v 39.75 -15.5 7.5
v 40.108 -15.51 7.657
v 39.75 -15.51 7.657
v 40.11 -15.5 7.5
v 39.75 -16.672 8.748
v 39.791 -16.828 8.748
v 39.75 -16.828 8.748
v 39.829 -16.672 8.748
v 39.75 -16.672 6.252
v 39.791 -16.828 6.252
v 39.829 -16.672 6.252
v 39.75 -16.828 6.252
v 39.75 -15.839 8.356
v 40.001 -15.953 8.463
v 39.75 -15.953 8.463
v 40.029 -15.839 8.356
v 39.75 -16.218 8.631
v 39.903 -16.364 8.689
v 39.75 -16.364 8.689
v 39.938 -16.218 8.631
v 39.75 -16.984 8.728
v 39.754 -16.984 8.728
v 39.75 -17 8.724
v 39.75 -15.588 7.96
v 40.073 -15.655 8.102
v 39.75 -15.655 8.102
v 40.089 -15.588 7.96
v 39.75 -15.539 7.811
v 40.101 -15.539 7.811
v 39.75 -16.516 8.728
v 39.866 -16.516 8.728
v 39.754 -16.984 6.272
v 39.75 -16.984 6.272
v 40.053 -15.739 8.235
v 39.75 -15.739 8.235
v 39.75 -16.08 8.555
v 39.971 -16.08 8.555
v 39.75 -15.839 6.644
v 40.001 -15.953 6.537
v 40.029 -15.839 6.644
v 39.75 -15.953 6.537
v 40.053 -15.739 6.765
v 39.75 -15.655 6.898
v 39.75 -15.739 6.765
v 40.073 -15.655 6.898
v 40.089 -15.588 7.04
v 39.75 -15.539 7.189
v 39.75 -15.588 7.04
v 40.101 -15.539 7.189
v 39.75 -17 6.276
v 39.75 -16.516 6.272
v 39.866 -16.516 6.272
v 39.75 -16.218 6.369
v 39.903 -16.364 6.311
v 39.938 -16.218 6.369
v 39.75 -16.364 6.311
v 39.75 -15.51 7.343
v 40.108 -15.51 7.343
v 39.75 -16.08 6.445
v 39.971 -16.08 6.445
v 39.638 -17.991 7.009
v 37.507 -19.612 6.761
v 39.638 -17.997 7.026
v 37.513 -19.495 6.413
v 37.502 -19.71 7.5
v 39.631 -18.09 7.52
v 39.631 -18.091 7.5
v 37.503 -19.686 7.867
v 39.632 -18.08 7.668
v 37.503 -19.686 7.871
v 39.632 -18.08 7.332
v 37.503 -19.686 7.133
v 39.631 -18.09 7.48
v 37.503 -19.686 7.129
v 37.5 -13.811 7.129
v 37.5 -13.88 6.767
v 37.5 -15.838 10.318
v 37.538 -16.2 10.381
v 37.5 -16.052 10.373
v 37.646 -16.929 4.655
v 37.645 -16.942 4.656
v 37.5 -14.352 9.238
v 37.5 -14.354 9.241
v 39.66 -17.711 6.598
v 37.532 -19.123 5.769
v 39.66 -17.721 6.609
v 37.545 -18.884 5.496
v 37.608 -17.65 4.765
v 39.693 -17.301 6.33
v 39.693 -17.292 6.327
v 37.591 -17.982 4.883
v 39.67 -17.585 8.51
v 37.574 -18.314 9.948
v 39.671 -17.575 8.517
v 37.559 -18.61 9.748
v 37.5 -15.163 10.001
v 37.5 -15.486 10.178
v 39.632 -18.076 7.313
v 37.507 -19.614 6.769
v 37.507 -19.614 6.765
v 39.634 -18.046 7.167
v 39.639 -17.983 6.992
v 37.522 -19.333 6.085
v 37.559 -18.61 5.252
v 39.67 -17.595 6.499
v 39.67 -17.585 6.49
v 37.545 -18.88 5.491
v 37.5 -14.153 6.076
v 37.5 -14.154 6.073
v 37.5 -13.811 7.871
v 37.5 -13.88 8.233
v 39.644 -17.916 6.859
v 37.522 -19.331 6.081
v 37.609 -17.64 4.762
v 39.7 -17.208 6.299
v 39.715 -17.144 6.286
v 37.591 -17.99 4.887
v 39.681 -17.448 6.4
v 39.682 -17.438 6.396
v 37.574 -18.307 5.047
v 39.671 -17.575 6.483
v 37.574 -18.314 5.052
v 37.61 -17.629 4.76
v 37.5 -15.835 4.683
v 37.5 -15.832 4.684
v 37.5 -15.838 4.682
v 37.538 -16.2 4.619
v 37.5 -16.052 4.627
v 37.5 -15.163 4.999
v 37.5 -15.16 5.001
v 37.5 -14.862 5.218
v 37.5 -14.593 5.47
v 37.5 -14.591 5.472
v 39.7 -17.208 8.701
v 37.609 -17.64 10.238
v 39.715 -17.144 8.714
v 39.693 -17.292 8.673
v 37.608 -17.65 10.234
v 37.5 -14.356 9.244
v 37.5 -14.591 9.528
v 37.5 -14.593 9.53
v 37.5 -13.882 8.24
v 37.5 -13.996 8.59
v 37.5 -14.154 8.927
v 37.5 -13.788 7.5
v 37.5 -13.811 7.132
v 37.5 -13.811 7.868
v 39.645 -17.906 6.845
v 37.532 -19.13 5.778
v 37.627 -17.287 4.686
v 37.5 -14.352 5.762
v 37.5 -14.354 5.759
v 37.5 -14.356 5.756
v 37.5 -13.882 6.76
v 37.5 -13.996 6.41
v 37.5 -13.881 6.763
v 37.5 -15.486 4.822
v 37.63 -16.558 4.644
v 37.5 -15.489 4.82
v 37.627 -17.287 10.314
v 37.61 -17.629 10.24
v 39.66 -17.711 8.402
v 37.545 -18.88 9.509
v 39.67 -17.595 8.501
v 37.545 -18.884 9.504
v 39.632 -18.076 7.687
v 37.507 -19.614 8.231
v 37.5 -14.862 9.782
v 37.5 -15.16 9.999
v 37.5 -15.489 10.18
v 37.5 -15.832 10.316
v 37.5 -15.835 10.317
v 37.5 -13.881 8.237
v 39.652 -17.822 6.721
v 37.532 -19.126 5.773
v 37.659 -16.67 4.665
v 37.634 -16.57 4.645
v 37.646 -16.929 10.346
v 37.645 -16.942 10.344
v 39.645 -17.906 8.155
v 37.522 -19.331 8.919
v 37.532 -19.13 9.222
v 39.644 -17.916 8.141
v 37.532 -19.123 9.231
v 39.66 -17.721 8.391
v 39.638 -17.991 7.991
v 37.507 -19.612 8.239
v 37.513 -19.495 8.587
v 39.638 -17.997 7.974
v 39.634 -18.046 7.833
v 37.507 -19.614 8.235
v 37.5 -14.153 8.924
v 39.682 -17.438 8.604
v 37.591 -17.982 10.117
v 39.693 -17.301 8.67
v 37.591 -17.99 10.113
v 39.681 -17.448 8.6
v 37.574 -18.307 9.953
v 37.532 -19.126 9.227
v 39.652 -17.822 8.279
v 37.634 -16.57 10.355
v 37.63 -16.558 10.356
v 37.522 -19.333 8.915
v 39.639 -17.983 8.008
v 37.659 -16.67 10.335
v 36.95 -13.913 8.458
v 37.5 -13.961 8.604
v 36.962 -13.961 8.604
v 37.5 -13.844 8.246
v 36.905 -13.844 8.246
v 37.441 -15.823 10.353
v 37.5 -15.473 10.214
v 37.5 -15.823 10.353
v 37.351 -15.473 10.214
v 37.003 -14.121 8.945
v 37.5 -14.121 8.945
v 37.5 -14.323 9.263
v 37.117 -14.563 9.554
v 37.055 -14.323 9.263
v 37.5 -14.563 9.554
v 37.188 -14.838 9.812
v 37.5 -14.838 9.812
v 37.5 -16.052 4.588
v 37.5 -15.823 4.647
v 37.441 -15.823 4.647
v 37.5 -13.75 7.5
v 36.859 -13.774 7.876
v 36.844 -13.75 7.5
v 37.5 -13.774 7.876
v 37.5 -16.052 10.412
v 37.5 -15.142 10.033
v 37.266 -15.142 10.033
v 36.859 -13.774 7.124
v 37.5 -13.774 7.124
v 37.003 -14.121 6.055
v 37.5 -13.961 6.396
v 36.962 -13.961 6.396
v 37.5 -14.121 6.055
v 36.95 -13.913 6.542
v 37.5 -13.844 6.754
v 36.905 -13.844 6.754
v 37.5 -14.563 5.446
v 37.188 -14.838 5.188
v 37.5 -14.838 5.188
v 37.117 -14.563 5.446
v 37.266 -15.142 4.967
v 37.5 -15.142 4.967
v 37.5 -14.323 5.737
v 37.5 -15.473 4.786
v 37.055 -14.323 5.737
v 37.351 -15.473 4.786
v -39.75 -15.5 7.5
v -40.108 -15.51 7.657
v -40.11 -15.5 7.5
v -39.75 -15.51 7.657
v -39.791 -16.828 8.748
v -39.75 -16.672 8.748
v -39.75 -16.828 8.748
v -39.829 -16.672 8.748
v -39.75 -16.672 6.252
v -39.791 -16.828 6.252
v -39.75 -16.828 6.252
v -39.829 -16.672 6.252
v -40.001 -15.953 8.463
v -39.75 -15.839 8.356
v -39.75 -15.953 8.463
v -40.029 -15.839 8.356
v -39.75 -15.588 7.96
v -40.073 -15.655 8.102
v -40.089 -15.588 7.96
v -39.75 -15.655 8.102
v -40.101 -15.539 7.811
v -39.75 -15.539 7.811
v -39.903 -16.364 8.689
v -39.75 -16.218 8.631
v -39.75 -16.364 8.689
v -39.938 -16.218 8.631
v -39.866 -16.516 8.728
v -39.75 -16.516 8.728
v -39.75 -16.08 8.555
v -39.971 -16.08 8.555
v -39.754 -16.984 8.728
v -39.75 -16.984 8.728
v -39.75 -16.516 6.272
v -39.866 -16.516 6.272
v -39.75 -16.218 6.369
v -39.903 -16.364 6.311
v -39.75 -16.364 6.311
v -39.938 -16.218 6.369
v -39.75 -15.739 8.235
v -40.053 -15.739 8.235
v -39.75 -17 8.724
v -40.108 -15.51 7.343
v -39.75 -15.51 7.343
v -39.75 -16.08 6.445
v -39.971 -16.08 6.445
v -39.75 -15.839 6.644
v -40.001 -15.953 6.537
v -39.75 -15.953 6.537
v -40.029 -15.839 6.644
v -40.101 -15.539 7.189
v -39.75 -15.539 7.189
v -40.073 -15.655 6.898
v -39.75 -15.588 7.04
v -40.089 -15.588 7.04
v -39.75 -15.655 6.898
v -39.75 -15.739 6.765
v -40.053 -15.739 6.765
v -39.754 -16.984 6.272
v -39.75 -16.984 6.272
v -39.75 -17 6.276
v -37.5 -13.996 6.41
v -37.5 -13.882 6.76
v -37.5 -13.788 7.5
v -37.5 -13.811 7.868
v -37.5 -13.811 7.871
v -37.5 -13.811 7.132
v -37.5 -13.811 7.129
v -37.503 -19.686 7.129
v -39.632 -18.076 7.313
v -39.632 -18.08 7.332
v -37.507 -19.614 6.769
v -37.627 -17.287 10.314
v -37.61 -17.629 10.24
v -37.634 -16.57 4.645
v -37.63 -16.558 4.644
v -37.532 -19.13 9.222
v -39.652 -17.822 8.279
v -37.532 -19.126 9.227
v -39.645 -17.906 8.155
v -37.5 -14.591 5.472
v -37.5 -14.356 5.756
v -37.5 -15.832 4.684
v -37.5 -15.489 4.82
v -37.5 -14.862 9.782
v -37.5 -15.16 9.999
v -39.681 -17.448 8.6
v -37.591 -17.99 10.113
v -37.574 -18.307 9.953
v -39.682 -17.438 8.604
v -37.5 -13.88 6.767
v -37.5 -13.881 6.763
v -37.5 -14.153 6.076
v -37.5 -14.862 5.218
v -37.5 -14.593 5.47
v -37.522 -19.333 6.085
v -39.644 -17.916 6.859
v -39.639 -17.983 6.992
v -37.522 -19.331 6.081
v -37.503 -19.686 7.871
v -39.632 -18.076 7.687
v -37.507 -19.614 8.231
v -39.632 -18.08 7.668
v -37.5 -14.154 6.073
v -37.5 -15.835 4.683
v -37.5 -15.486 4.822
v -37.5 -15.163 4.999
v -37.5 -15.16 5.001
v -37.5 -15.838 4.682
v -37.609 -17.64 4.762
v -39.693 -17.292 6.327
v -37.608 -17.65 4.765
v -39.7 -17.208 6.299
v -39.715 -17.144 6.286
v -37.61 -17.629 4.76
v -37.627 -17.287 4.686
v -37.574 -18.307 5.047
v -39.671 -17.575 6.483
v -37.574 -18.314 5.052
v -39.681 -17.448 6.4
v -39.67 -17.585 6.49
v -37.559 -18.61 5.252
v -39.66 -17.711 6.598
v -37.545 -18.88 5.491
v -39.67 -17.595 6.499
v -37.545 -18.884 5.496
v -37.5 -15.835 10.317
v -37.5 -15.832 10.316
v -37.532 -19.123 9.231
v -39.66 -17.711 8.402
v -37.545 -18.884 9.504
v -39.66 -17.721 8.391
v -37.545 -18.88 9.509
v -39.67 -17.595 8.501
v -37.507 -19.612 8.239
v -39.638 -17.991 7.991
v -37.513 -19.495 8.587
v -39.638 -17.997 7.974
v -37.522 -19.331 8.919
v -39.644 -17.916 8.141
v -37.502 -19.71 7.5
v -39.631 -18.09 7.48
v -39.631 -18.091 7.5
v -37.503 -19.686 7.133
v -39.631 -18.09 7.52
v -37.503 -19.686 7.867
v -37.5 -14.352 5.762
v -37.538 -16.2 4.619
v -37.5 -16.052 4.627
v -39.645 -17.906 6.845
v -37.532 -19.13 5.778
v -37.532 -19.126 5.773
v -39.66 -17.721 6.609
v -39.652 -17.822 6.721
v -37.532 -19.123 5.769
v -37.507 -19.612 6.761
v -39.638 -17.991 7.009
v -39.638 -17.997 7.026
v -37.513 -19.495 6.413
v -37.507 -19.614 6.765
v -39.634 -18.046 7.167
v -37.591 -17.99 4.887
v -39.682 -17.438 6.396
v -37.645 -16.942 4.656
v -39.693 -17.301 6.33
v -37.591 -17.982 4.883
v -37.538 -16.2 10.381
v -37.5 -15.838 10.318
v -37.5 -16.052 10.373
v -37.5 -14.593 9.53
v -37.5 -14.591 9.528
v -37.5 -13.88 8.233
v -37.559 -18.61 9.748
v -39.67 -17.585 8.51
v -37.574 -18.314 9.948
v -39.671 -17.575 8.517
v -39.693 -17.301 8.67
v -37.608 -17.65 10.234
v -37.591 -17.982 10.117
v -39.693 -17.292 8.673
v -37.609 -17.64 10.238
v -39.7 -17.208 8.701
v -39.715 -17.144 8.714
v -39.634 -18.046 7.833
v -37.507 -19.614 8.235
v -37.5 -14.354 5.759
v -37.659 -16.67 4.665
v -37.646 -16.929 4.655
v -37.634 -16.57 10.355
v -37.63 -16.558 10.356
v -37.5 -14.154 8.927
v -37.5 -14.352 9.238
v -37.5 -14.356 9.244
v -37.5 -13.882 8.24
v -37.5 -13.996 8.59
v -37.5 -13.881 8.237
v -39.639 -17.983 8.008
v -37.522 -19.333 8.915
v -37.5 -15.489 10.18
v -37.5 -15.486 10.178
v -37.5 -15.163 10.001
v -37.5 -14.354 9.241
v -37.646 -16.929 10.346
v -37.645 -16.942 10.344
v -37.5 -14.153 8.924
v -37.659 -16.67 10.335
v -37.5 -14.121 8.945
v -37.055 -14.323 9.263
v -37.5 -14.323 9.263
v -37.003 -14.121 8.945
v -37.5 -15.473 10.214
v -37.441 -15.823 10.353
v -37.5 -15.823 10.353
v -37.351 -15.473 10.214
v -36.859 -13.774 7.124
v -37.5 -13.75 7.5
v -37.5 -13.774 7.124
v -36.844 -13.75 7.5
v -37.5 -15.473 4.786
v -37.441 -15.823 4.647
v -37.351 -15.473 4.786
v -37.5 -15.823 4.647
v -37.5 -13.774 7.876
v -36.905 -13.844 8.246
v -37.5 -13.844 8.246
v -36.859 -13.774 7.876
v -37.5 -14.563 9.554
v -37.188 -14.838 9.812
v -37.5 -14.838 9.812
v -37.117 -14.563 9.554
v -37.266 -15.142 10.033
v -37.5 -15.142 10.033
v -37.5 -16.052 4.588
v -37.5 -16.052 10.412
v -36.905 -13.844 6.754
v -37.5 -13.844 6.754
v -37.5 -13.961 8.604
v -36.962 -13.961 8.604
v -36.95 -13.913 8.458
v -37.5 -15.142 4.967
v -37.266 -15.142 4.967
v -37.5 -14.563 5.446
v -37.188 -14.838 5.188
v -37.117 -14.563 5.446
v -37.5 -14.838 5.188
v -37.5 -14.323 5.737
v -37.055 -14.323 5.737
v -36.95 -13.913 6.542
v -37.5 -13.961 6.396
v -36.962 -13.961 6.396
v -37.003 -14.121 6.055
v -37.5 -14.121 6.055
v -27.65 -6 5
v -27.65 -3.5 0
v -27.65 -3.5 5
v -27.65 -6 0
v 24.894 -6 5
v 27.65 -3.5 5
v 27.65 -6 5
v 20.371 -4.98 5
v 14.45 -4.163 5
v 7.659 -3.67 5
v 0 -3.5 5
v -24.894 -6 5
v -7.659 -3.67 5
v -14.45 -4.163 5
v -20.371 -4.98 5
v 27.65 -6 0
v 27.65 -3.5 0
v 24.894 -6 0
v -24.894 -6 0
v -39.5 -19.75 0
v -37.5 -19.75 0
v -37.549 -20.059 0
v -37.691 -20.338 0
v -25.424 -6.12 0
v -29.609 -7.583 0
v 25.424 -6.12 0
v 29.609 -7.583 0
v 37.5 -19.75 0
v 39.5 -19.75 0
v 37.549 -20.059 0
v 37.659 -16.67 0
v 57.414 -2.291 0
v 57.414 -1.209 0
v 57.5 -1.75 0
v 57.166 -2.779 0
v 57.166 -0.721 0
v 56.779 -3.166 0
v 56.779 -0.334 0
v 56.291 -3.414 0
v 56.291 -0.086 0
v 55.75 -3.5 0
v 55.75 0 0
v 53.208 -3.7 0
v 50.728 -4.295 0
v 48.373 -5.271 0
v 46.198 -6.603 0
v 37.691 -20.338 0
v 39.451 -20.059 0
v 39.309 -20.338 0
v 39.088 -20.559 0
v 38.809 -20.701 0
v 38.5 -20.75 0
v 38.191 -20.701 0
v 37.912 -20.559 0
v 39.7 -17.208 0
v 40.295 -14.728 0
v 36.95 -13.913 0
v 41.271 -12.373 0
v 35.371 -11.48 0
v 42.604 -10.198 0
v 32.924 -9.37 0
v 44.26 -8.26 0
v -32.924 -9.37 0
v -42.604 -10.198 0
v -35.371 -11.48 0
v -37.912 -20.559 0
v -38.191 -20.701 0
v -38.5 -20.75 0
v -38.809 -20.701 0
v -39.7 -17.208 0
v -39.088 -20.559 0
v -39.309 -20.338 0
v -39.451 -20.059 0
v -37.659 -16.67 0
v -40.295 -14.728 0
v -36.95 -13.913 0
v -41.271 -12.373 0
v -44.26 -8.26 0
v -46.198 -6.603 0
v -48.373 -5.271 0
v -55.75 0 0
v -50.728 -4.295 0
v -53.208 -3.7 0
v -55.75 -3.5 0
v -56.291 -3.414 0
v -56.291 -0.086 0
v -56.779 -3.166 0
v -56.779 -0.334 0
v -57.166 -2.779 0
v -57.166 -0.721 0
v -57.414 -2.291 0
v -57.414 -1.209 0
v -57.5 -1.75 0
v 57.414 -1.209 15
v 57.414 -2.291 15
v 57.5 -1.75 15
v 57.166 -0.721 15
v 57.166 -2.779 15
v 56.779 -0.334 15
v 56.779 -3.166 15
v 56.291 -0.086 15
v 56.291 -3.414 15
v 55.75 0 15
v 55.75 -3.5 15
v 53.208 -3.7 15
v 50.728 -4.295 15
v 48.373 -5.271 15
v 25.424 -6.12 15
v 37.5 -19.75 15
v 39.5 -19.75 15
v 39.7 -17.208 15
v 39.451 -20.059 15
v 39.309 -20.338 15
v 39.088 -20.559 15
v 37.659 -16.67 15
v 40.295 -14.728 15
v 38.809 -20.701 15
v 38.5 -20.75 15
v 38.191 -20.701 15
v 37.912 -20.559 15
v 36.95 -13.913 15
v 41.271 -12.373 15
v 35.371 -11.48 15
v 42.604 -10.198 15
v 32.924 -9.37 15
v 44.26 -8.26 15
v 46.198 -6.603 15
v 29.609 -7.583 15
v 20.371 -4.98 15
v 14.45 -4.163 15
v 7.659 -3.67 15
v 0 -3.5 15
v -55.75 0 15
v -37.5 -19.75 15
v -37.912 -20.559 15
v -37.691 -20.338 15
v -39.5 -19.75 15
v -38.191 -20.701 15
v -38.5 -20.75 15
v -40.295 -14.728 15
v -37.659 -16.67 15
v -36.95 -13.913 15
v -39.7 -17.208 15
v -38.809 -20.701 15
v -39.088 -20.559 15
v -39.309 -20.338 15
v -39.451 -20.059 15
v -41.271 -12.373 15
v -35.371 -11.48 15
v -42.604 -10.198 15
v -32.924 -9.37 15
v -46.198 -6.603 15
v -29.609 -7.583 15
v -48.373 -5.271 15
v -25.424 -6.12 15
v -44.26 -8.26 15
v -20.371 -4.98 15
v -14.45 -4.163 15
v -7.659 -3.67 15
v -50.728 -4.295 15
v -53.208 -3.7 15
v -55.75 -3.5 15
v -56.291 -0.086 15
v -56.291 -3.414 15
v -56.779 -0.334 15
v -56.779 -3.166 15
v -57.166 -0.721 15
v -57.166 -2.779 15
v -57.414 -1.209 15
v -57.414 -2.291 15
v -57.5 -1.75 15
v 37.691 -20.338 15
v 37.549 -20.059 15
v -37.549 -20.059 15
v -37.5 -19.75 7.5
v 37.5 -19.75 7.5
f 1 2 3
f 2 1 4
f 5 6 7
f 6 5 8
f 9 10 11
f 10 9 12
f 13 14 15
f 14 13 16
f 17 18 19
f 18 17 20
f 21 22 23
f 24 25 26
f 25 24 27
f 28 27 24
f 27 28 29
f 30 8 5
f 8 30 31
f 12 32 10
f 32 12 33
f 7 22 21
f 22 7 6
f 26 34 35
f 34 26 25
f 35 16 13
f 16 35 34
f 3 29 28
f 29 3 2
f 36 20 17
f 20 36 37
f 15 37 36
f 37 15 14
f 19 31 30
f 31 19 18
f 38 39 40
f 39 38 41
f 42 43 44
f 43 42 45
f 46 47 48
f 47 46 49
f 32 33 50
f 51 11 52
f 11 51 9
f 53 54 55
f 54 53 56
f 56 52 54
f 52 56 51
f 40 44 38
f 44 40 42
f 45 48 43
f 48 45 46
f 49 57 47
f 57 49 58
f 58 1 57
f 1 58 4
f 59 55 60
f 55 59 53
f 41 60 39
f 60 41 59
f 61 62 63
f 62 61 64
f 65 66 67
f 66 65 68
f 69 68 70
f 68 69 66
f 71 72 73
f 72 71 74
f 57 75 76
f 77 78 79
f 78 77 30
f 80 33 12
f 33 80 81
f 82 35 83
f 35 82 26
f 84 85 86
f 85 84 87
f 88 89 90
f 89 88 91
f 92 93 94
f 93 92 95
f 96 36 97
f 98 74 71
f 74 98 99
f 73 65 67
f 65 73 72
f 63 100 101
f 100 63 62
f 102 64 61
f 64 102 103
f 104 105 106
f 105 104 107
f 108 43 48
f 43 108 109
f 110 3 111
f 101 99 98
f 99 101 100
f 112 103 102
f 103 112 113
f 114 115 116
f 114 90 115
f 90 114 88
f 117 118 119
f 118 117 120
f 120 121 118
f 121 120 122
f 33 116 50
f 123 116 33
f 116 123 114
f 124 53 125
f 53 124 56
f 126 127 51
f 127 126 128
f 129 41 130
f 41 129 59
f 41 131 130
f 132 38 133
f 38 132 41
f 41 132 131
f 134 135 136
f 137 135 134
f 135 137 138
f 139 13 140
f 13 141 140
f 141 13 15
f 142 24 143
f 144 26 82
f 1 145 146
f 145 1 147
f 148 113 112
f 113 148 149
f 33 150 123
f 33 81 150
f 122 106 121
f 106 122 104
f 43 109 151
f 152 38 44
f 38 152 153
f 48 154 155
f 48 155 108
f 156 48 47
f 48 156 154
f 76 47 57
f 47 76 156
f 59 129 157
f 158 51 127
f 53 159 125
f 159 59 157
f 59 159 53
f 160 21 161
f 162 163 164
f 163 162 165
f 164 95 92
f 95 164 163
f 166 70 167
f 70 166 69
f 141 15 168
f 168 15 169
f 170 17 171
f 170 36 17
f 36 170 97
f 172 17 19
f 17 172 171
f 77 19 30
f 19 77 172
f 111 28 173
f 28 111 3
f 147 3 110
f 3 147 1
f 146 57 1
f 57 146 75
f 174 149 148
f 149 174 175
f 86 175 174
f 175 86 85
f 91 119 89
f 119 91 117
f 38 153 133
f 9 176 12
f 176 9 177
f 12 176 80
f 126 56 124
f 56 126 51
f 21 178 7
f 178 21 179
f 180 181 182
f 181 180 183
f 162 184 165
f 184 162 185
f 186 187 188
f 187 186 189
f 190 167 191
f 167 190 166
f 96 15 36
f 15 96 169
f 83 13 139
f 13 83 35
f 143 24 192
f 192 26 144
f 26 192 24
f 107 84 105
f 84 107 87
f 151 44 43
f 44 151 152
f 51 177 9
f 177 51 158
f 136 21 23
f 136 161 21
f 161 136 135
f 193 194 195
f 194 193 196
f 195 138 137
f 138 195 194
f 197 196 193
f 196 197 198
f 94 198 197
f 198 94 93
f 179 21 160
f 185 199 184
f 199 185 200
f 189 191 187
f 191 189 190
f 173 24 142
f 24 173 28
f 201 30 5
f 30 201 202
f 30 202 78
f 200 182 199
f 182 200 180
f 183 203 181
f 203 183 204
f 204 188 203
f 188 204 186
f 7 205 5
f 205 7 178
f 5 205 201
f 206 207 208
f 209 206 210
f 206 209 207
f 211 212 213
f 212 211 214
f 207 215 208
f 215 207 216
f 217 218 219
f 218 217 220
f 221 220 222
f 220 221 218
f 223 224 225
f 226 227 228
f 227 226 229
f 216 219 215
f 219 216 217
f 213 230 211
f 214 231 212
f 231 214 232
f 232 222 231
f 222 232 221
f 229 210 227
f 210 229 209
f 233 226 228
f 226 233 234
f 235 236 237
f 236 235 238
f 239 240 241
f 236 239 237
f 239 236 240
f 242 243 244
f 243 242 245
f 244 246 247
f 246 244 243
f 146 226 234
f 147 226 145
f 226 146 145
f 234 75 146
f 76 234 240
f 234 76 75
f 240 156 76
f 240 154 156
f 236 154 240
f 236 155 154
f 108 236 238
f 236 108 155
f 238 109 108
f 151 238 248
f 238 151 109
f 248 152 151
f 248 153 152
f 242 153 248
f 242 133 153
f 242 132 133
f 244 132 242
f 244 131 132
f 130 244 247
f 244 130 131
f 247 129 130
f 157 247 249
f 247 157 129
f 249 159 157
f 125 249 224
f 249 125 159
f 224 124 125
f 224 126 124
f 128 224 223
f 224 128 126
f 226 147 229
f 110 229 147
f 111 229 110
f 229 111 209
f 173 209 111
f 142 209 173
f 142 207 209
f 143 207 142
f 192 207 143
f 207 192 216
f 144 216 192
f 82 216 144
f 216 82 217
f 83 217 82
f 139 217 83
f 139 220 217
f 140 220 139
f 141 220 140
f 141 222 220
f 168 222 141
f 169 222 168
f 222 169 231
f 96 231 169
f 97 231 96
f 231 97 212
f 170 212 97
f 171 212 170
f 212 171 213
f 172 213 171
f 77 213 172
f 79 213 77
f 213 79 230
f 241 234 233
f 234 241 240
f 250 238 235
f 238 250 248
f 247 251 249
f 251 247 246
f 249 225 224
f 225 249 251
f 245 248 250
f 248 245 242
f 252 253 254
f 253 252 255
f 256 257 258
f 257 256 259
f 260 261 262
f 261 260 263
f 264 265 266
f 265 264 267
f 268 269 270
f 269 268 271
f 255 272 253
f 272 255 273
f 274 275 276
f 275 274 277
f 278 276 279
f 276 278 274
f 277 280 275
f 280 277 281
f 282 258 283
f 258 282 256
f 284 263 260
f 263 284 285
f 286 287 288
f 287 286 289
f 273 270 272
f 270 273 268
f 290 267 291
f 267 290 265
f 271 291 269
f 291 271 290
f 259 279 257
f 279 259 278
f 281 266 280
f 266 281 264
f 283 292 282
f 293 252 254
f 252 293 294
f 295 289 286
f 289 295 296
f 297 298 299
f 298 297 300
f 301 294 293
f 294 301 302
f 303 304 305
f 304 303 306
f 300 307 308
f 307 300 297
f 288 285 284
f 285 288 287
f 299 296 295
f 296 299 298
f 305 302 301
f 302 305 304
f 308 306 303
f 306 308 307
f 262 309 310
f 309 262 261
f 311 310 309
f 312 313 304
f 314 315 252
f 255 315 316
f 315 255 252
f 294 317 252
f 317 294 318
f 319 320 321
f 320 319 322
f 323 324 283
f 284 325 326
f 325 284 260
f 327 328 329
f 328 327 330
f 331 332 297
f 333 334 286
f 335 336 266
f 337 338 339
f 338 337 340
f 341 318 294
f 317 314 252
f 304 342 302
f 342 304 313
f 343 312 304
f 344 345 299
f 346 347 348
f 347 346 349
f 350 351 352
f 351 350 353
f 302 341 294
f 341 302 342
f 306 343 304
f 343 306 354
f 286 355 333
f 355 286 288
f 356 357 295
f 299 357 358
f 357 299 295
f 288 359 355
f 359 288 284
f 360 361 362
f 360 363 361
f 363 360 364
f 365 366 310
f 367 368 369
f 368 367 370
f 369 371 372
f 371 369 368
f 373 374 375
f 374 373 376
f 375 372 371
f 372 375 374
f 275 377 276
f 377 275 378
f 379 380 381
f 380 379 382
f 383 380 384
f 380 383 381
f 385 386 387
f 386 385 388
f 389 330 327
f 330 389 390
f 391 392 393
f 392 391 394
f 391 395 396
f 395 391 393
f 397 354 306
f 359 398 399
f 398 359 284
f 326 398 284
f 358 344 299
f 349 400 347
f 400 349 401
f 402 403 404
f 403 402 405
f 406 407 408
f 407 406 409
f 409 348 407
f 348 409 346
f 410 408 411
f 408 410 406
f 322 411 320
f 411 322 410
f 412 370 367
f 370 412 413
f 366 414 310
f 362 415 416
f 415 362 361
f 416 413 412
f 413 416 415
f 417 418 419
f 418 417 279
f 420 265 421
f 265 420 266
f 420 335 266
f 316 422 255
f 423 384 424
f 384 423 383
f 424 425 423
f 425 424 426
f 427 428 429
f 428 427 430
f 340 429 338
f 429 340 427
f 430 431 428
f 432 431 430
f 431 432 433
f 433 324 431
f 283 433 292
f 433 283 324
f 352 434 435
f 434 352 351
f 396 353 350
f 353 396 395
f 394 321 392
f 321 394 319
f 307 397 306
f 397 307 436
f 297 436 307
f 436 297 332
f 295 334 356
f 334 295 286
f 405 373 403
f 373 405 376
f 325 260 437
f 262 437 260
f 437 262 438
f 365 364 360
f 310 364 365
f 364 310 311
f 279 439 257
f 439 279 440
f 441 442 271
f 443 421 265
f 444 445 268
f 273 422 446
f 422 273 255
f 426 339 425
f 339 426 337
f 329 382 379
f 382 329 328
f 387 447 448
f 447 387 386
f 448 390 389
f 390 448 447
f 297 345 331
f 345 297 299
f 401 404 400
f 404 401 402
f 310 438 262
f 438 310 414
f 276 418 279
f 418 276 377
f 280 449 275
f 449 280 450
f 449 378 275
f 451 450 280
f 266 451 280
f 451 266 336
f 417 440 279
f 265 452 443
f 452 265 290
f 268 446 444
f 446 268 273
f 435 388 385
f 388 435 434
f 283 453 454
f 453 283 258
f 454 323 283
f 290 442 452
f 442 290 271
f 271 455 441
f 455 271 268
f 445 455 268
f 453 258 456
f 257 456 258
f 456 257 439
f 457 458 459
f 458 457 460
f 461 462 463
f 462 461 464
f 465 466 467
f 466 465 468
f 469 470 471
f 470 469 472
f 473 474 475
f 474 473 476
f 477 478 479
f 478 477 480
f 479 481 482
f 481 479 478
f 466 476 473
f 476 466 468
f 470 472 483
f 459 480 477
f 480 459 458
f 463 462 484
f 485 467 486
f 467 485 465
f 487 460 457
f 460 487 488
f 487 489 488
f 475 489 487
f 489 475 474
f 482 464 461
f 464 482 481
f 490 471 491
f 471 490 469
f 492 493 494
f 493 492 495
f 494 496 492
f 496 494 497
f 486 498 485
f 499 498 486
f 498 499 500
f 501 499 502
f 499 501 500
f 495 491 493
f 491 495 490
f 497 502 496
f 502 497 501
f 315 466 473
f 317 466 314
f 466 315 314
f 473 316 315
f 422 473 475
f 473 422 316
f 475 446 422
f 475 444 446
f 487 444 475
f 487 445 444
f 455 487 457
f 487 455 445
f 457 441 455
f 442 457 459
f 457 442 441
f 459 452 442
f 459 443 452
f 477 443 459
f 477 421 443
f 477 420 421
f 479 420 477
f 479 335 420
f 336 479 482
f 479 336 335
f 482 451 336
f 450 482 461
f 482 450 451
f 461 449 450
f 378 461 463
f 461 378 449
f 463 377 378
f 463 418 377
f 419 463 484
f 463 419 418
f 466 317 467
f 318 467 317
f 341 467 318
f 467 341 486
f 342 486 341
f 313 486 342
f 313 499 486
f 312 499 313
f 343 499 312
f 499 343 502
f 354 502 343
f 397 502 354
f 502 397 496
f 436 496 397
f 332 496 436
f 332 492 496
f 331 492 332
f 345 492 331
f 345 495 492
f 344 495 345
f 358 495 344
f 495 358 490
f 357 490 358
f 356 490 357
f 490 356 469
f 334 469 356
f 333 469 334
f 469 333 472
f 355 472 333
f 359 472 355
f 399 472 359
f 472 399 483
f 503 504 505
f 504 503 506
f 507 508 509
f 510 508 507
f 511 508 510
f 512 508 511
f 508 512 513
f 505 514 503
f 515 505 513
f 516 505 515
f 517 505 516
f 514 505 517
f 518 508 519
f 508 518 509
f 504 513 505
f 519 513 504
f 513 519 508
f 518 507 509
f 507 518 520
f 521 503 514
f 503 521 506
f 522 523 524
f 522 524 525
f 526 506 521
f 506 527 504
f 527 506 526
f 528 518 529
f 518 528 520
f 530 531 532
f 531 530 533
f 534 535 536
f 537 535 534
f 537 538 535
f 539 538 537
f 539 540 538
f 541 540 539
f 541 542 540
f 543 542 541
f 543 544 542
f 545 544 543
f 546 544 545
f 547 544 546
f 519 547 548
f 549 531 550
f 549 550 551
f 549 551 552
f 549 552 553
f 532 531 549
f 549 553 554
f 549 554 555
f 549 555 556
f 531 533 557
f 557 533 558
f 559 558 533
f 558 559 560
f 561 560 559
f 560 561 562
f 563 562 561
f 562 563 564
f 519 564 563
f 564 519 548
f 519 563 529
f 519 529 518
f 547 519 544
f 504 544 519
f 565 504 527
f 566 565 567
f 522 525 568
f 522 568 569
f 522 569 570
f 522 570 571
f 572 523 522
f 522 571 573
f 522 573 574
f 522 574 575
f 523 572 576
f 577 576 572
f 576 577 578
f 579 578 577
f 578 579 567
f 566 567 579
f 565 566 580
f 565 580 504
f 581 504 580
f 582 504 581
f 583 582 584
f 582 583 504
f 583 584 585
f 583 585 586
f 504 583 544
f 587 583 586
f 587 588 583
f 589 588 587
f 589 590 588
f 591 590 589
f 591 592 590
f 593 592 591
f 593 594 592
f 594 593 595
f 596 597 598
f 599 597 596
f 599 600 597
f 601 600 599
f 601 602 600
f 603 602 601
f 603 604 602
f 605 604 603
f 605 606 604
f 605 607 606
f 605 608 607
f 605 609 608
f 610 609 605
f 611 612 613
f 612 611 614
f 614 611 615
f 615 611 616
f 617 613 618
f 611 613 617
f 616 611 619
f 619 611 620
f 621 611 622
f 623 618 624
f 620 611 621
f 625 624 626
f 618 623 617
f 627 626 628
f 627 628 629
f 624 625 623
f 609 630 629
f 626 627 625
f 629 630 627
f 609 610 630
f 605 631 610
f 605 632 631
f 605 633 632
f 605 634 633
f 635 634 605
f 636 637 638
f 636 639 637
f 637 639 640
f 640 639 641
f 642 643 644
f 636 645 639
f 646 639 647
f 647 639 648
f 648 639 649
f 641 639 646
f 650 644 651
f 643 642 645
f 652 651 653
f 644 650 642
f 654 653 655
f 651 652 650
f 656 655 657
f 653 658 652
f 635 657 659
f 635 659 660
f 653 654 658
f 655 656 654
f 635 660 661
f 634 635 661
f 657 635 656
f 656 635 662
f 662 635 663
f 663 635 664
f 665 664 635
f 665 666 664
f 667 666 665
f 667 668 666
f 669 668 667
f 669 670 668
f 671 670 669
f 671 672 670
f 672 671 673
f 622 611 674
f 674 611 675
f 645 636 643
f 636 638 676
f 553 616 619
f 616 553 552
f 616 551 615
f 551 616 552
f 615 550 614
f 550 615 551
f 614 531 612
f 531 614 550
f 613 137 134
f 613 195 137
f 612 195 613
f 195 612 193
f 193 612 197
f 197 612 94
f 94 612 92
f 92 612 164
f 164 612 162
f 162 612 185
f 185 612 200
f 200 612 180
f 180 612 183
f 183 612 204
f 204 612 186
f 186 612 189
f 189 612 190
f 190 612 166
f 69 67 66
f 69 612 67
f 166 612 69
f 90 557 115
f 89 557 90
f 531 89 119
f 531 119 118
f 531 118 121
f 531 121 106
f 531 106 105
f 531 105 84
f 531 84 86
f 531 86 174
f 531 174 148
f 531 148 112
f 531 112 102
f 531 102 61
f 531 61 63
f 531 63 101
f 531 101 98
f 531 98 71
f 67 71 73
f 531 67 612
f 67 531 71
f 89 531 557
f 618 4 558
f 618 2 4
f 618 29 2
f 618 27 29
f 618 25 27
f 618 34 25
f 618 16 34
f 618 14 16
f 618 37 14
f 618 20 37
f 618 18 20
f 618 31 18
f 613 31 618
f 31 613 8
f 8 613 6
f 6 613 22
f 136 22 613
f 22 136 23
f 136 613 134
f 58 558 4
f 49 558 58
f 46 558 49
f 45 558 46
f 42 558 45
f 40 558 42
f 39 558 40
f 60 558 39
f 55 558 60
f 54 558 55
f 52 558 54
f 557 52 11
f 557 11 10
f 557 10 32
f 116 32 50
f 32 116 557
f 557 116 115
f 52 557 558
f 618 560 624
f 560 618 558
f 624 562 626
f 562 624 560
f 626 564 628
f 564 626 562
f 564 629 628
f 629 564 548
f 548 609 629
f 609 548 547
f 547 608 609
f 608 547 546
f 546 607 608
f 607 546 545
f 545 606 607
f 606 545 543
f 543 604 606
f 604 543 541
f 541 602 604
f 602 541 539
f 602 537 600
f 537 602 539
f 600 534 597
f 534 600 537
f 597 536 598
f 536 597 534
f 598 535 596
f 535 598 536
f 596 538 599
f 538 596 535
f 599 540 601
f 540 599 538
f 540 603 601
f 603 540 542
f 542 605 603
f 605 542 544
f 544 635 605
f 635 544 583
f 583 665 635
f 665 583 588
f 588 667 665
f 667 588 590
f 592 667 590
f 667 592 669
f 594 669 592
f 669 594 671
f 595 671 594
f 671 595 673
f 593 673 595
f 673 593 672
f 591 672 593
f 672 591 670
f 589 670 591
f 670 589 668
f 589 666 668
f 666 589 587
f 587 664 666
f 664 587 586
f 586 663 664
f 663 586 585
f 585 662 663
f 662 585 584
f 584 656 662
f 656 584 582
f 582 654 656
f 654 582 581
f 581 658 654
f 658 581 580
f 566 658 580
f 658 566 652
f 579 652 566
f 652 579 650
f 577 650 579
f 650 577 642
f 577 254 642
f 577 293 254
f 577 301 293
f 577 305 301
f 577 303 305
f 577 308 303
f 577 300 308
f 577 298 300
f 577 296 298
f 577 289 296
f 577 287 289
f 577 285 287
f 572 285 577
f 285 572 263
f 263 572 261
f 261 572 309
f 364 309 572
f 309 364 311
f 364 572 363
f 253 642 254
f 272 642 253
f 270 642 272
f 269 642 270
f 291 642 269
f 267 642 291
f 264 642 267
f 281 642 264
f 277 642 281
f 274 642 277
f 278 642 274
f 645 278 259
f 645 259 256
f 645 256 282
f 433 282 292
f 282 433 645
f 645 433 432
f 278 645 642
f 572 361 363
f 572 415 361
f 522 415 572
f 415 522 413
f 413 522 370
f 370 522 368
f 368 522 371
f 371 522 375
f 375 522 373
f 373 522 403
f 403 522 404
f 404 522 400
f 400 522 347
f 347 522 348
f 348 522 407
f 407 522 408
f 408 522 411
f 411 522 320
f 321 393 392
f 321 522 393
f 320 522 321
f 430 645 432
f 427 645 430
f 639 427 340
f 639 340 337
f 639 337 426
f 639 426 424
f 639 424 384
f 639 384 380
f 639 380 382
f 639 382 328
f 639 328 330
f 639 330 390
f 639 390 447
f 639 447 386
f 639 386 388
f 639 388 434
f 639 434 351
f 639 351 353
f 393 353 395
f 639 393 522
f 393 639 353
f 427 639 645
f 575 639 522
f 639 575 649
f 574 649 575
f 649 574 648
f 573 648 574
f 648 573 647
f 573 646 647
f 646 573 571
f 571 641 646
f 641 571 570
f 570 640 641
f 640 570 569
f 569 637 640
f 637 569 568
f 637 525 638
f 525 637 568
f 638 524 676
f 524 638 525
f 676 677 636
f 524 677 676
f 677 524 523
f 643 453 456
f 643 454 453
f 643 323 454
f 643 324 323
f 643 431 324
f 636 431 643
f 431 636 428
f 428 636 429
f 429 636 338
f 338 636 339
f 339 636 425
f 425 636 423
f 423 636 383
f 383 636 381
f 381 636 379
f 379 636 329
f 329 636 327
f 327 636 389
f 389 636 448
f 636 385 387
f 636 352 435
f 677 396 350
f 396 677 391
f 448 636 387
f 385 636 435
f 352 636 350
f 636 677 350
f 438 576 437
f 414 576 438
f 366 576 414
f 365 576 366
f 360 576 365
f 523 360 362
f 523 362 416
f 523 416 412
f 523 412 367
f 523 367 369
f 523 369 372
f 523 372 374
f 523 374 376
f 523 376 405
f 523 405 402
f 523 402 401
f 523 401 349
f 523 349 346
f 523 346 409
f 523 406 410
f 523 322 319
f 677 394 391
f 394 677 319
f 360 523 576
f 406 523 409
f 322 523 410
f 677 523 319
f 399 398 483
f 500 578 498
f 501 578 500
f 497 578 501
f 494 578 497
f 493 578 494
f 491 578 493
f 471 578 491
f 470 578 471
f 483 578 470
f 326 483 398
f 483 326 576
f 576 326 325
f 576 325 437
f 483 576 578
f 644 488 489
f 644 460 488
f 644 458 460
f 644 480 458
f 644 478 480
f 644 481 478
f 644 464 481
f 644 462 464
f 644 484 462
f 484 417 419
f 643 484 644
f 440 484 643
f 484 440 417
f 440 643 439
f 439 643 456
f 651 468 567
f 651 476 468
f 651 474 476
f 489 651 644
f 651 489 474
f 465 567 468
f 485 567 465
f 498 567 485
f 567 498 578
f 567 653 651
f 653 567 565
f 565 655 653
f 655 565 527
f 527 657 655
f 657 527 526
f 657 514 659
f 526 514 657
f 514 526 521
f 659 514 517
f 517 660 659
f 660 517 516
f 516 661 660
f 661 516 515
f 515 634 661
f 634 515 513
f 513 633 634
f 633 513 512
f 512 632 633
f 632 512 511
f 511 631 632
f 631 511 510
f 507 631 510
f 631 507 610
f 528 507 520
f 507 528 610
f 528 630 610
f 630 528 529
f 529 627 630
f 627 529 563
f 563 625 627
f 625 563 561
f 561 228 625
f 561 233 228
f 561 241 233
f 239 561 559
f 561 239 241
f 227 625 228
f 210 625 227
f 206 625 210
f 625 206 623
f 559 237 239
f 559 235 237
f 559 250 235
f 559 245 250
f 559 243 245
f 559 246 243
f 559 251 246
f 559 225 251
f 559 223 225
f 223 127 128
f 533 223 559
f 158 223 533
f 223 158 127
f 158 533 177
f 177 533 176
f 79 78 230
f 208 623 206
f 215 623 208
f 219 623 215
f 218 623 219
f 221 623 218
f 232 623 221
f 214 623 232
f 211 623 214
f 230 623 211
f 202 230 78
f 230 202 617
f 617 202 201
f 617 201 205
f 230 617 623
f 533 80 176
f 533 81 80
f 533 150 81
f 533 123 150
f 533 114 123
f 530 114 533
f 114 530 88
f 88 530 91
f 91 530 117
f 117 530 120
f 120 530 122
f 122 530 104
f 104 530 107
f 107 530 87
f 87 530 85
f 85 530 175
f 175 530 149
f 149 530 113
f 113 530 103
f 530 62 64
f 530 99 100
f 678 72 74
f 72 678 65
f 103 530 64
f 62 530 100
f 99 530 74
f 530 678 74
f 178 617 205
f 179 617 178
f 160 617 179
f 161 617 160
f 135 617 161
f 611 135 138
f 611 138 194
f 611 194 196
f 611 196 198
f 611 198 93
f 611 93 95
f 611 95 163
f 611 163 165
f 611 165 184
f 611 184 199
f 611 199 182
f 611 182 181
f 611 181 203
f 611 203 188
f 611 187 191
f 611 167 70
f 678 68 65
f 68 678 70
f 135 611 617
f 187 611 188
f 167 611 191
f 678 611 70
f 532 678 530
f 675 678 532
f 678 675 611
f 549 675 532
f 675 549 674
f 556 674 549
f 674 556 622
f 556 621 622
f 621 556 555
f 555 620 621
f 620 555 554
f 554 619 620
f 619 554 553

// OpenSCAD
// file: vector.scad
function is_nan(x) = x != x ;

// reverse vector
function reverse(v) = [for (i =[len(v)-1:-1:0]) v[i]];
// repeat vector n-times
function repeat(v, n) = [for (i=[0:n*len(v)-1])  v[ i%len(v) ] ];
// allow negative indexes for vector (counting from the back). -1 is last element in array
function v_index(v, n) = is_undef(n) ? len(v) : n < 0 ? len(v)+n : n ;
// cut slice of vertor. `start` included , `end` excluded.
function slice(v, start, end=undef) = [for (i=[start:v_index(v,end)-1]) v[i] ];

function v_add(v, n) = [for (i=[0:len(v)-1]) v[i]+n ];

assert(reverse([1,2,3]) == [3,2,1]);
assert(repeat([1,2],3) ==  [1, 2, 1, 2, 1, 2]);
assert(v_index([1,2,3],-1)==2);
assert(v_index([1,2,3],0) == 0);
assert(v_index([1,2,3],undef)==3);
assert(slice([1,2,3],1,-1)==[2]);
assert(slice([1,2,3],1)==[2,3]);
assert(v_add([1,2,3],1)==[2,3,4]);
// file: 2d.scad
use <vector.scad>

function max_x(a, i = 0) = (len(a) == 0) ? 0 : (i < len(a) - 1) ? max(a[i][0], max_x(a, i+1)) : a[i][0];
function shift_x(a, dx, scaler=1) = [for ( p=a) [scaler*p[0]+dx,p[1]] ];

function scale_poly(a, s=[1,1]) = [for (p=a) [ s[0]*p[0], s[1]*p[1] ]];
function shift_poly(a, d=[0,0]) = [for (p=a) [ d + p ]];

function inverse_x(a) = shift_x(reverse(a),max_x(a),-1);
function mirror_x(a) = shift_x(reverse(a),0,-1);

function symmetry_x(a) = scale_poly(reverse(a),s=[-1,1]);
function symmetry_y(a) = scale_poly(reverse(a),s=[1,-1]);

function concat_with_undefs(prev,next) = 
    len(prev) == 0 ? next : 
        let (prev_last_p = prev[v_index(prev,-1)]) 
        is_undef(prev_last_p[1])  
            ? concat(slice(prev,0,-1),[[prev_last_p[0],next[0][1]]],next) 
            : is_undef(next[0][1]) 
                ? concat(prev, [[next[0][0],prev_last_p[1]]], slice(next,1)) 
                : concat(prev, next) ;

function join_poly(polys, r = [], i=0) = (i < len(polys)) ? 
    join_poly( polys, concat_with_undefs(r,shift_x(polys[i],max_x(r))) ,i+1) : r;

function line_segment(p1,p2) = [p1,[p2[0]-p1[0], p2[1] - p1[1]]];

function ls_slope(ls) = ls[1][1]/ls[1][0] ;

function ls_distance(ls) = sqrt(pow(ls[1][1],2)+pow(ls[1][0],2));

function ls_angle(ls) = 
    let (ss = sign(ls[1][1]) == -1 ? -1 : 1)
    let (sc = sign(ls[1][0]) == -1 ? -1 : 1)
    let (ts = asin(ls[1][1]/ls_distance(ls))) 
    ts != 0 ? ( sc == -1 ? ss * 180 - ts : ts ) : ss*acos(ls[1][0]/ls_distance(ls))  ;
    
assert(ls_angle([[0, 0], [1, 0]])==0);
assert(ls_angle([[0, 0], [-1, 0]])==180);


function angle_diff_cw(a1, a2) = a1 < a2 ? angle_diff_cw(a1+360, a2) : a1 - a2 ;

function angle_diff_ccw(a1, a2) = angle_diff_cw(a2, a1);

function ls_midpoint(ls) = ls[0]+ls[1]/2;

function ls_endpoint(ls) = ls[0]+ls[1];

function line(slope,pt) = [slope, pt[1]-slope*pt[0]];

function l_y(l,x) = l[0]*x + l[1];

function l_segment(l,x1,x2) = line_segment([x1, l_y(l,x1)], [x2, l_y(l,x2)]);

function ls_line(ls) = let(slope=ls_slope(ls)) line(slope,ls[0]);

function ls_perpendicular(ls) = 
    let (l = ls_line(ls)) 
    let (mp = ls_midpoint(ls))
    line(-1/l[0], mp);

function intersect_lines(l1, l2) = 
    let (x = (l2[1]-l1[1])/(l1[0]-l2[0]))
    [x,l_y(l1,x)];

function interpolate_point(ls,fraction) =  [
    ls[0][0] + fraction*ls[1][0],
    ls[0][1] + fraction*ls[1][1]
];


function bezier_curve( a, b, c ) =
    len(a)==3 ? _bezier_curve(a[0],a[1],a[2]) : _bezier_curve(a,b,c);

function _bezier_curve( p1, p2, p3 ) =
    [line_segment(p1,p2), line_segment(p2, p3)];

function curve_point(bc, fraction) =
    interpolate_point(
        line_segment(
            interpolate_point(bc[0],fraction), 
            interpolate_point(bc[1], fraction)), 
        fraction);

function bc_poly(bc, n_points=10) = [for ( f = [0:1/n_points:1]) curve_point(bc, f)] ;

function rake_poly(up_ramp, down_to_valley, n_of_valleys) = 
    join_poly(concat(
        [up_ramp],
        repeat(
            [
                down_to_valley, 
                inverse_x(down_to_valley) // up on other side of the valley
            ], 
            n_of_valleys),
        [inverse_x(up_ramp)] // down ramp
    ));

function arc_point(a,f) = 
    let(c = a[0])
    let(r = a[1])
    let(initial_angle = a[2])
    let(cw = a[3])
    let(range = a[4])
    let (angle = cw ? initial_angle - f * range : initial_angle + f * range)
    c+[r*cos(angle),r*sin(angle)];

function arc_poly(a, n_points=10) = [for ( f = [0:1/n_points:1]) arc_point(a, f)] ;

function arc( a, b, c ) =
    len(a)==3 ? _arc(a[0],a[1],a[2]) : _arc(a,b,c);

function _arc( p1, p2, p3 ) =
    let(ls1 = line_segment(p1,p2))
    let(ls2 = line_segment(p2,p3))
    let(ls3 = line_segment(p1,p3))    
    let(lp1 = ls_perpendicular(ls1))
    let(lp2 = ls_perpendicular(ls2))
    let(lp3 = ls_perpendicular(ls3))
    let(c12 = intersect_lines(lp1,lp2))
    let(c23 = intersect_lines(lp2,lp3))
    let(c13 = intersect_lines(lp1,lp3))
    let(c = !is_nan(c23[0]) ? c23 : !is_nan(c13[0])? c13 : c12 )
    let(r1 = line_segment(c,p1))
    let(r2 = line_segment(c,p2))
    let(r3 = line_segment(c,p3))
    let(r = ls_distance(r1))
    let(a1 = ls_angle(r1))
    let(a2 = ls_angle(r2))
    let(a3 = ls_angle(r3))
    let(cw = angle_diff_cw(a1,a2) < angle_diff_cw(a1,a3))
    let(a_diff = cw ? angle_diff_cw(a1,a3) : angle_diff_ccw(a1,a3))
    [c,r,a1,cw,a_diff];


// linear interpolation or extrapolation (middle by default or any ratio) 
// using 2 points `a` and `b`
function mid(a,b,ratio=.5) = b + (a-b)*ratio ; 

function triangle(a,b,split=.5,height=.5) =
    let (delta = (mid(a,b,height)-b) * [[0,1],[-1,0]])
    let (z = mid(a,b,split) + delta)
    [a,z,b];

assert(arc([0,0],[0,1],[1,1])==arc([[0,0],[0,1],[1,1]]));
assert(bezier_curve([0,0],[0,1],[1,1])==bezier_curve([[0,0],[0,1],[1,1]]));

// echo(arc([0,0],[0,1],[1,1]));
// echo(arc(triangle([0,0],[1,1],.5,-.5)));

assert(arc([0,0],[0,1],[1,1])==arc(triangle([0,0],[1,1],.5,-.5)));
assert(arc([1,1],[1,2],[2,2])==arc(triangle([1,1],[2,2],.5,-.5)));

// echo(arc([0,0],[1,0],[1,1]));
// echo(arc(triangle([0,0],[1,1],.5,.5)));

assert(arc([0,0],[1,0],[1,1])==arc(triangle([0,0],[1,1],.5,.5)));
assert(arc([1,1],[2,1],[2,2])==arc(triangle([1,1],[2,2],.5,.5)));

// echo(arc(triangle([1,0], [-1,0])));
assert(arc(triangle([1,0], [-1,0])) ==  [[0, 0], 1, 0, false, 180]);

// echo(arc(triangle([0,-1], [0,1])));
assert(arc(triangle([0,-1], [0,1])) ==  [[0, 0], 1, -90, false, 180]);

// echo(arc(triangle([0,-1], [0,1],height=-.5)));
assert(arc(triangle([0,-1], [0,1], height=-.5)) ==  [[0, 0], 1, -90, true, 180]);
// main file
use <2d.scad>
e=.05;
d114 = 42.2; // OD: 1 1/4"
d1 = 32.5; // OD: 1"
d = d1;   
ratio = d/d114;
t=3.5;
w=111.5;
h = 15;

pcb_thick = 2.5;
pcb_width = 55.3;

origin = [0,0];
thickness = [0,t];
outer_end = [w/2,0];
outer_down=outer_end-thickness;
down_arc = outer_down-[d,d]/2;
down_arc_t = down_arc-[2,0];

halfback = concat( [origin, outer_end] , 
            arc_poly(arc(triangle(outer_end, outer_down,height=-.5))),
            arc_poly(arc(triangle(outer_down, down_arc,height=(sqrt(2)-1)/2))),
            arc_poly(arc(triangle(down_arc, down_arc_t,height=-.5))),
            bc_poly(bezier_curve(triangle(down_arc_t, origin-thickness,.7/ratio, .51*ratio)))
        );

module countersink(hole_d, hole_h, screw_d, screw_h){
    h = hole_h - screw_h ;
    union(){
        cylinder(d=hole_d,h=h+e,$fn=50);
        translate([0,0,h]) cylinder(d1=hole_d, d2=screw_d,h=screw_h,$fn=50);
        translate([0,0,hole_h-e]) cylinder(d=screw_d,h=2,$fn=50);
    }
}

screw_len = 5;

module screw(zign){
         translate([(down_arc_t[0]+screw_len-e)*zign,down_arc_t[1]+3,h/2]) 
         rotate([90,0,zign*-90])
             countersink(2.5,screw_len,6,2.3);
}


difference(){
    linear_extrude(height=h)
    polygon(points=concat(halfback, symmetry_x(halfback)));
    union(){
         translate([0,-t-pcb_thick/2,0])
         cube([pcb_width, pcb_thick, 10 ], center=true);
         screw(1);
         screw(-1);
    }
}
